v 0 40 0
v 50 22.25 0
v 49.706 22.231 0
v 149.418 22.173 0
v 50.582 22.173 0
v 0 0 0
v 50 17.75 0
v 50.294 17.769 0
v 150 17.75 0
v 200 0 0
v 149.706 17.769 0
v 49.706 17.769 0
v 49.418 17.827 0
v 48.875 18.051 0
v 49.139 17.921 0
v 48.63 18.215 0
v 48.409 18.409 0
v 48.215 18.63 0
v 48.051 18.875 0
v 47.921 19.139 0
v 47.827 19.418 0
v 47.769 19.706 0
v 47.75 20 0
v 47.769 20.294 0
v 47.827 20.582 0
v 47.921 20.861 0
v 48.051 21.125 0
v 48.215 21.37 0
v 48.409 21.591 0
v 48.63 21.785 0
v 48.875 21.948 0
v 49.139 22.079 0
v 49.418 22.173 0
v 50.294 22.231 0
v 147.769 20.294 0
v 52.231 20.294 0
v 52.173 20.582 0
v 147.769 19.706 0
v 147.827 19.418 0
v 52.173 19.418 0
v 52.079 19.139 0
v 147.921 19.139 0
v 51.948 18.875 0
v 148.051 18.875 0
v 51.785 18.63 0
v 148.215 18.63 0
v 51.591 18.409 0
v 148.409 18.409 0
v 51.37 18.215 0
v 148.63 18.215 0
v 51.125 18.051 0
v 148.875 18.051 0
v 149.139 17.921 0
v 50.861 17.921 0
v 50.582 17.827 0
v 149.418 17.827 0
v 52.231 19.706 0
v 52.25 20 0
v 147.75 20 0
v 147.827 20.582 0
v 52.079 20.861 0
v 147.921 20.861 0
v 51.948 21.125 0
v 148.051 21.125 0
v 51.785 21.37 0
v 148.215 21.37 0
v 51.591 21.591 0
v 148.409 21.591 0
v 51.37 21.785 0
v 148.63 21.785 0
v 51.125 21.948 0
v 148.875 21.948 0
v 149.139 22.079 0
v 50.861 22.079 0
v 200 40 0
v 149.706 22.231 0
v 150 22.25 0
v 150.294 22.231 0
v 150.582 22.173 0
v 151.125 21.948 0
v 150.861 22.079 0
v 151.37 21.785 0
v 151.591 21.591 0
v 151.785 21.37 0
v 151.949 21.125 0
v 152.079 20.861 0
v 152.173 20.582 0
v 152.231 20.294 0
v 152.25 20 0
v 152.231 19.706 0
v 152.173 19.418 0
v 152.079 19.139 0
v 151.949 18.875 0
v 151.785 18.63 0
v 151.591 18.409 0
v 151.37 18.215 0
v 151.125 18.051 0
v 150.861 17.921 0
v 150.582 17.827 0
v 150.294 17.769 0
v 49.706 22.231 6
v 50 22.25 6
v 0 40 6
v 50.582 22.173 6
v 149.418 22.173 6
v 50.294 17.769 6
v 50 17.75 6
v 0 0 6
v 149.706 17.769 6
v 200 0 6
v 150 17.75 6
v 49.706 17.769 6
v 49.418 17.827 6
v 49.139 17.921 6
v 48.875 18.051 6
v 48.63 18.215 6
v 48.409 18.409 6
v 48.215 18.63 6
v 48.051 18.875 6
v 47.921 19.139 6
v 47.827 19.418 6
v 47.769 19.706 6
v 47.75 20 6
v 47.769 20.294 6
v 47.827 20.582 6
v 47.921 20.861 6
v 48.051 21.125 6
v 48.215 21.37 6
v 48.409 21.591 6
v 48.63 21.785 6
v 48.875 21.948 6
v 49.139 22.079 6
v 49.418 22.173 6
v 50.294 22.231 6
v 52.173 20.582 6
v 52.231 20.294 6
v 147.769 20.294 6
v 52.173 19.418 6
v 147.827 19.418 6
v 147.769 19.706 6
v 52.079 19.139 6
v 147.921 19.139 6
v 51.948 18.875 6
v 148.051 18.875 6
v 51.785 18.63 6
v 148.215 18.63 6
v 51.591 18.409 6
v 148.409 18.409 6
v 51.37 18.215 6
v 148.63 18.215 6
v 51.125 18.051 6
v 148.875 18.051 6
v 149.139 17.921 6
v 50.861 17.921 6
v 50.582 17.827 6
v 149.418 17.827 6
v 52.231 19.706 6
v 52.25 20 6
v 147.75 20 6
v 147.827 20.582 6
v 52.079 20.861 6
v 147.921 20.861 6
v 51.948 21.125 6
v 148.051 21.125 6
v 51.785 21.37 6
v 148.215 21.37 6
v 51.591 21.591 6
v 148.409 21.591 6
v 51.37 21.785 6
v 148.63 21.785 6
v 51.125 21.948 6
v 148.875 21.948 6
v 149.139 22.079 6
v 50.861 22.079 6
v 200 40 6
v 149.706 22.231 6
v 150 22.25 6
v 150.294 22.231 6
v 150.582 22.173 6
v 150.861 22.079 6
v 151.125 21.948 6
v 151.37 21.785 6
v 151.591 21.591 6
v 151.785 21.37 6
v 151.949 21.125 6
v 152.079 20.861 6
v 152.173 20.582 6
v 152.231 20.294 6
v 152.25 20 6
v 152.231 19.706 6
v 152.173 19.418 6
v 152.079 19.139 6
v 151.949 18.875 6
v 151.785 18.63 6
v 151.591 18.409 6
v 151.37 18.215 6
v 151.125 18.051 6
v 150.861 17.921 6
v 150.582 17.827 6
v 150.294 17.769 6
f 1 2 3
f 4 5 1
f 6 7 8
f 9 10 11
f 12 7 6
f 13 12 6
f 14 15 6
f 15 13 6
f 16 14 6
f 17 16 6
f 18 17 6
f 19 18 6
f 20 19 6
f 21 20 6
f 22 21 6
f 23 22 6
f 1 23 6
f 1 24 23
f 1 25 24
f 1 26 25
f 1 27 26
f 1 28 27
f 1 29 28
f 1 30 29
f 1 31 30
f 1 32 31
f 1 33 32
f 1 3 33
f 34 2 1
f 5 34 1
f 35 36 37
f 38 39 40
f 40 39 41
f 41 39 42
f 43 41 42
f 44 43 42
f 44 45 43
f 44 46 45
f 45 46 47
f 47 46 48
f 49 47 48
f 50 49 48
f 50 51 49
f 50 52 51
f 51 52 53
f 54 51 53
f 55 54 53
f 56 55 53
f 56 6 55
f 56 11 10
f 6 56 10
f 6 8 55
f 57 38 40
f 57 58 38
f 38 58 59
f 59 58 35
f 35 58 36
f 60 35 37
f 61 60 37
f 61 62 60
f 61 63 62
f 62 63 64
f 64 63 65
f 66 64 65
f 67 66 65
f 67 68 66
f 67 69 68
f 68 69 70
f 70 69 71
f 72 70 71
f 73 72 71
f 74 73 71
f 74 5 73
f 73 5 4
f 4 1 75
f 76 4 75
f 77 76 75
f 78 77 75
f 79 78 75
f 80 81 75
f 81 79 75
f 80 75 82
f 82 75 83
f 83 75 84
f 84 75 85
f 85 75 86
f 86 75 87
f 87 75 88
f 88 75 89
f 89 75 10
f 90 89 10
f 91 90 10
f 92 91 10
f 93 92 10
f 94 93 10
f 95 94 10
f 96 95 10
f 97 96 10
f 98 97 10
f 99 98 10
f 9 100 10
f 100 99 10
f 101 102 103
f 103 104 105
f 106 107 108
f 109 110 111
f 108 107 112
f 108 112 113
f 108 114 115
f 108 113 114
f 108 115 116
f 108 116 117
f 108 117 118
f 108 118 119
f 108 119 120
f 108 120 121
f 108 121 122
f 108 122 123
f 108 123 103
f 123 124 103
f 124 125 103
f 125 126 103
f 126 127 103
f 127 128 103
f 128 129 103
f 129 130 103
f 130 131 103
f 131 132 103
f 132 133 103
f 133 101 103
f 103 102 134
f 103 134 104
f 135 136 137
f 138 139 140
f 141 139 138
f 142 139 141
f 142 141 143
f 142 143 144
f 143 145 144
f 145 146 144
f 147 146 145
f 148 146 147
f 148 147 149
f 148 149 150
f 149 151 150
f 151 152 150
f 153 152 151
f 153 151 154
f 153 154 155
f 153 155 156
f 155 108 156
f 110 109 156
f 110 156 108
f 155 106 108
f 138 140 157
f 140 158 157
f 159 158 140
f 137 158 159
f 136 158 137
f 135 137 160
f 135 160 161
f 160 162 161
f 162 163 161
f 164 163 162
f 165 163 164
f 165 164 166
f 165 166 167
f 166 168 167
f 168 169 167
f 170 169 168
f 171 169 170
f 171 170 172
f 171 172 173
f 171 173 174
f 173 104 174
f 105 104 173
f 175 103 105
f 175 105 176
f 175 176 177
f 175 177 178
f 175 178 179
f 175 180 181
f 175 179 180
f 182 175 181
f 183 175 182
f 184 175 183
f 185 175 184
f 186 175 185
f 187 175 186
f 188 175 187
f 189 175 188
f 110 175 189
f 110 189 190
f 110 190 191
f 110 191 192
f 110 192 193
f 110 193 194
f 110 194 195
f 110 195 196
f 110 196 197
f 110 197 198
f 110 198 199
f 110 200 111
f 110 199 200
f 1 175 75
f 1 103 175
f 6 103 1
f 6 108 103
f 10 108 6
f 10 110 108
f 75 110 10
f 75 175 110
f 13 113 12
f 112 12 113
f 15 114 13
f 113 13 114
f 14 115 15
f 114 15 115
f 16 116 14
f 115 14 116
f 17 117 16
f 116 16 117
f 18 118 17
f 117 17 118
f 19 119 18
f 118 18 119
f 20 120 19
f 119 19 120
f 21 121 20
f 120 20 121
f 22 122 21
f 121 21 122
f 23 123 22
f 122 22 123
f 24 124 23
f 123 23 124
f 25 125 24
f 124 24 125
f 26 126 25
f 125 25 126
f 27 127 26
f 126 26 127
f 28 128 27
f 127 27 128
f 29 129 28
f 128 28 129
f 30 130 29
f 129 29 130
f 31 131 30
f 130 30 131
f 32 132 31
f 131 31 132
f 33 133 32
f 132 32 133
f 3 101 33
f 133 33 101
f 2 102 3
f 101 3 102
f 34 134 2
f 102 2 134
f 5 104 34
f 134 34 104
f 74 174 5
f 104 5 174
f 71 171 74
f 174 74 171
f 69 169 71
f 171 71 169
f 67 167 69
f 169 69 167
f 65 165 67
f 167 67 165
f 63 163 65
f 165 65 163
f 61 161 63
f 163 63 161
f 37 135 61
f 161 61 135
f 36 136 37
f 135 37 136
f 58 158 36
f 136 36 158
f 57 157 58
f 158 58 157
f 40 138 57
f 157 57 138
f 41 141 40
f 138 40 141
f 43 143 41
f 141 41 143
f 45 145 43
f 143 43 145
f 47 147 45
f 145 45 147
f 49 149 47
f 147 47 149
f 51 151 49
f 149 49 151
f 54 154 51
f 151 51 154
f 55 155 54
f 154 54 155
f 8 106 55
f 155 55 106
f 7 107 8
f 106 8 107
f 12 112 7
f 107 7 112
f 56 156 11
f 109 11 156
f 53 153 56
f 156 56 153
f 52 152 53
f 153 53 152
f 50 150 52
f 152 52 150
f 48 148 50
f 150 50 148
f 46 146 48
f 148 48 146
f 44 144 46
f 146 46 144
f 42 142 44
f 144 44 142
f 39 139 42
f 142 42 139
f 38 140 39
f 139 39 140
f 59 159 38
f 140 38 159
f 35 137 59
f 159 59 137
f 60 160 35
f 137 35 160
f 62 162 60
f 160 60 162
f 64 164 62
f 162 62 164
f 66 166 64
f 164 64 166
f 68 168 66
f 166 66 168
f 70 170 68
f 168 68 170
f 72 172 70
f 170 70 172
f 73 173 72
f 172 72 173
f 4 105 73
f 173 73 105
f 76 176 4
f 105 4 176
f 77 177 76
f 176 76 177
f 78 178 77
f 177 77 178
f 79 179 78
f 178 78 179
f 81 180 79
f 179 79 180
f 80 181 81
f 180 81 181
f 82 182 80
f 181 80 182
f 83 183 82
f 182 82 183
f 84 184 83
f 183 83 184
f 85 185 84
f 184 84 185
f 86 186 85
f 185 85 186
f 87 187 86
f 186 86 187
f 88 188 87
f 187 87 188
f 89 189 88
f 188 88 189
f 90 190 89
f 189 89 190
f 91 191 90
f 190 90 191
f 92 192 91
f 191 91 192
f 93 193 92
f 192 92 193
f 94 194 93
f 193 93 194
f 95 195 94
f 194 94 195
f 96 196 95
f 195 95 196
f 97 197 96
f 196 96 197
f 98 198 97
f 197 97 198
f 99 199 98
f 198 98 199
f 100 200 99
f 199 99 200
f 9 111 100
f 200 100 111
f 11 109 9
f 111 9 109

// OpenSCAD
linear_extrude(6) difference(){ polygon([[0, 0], [200, 0], [200, 40], [0, 40]]);translate([50,20]) circle(r=2.25,$fn=48);translate([150,20]) circle(r=2.25,$fn=48);}
